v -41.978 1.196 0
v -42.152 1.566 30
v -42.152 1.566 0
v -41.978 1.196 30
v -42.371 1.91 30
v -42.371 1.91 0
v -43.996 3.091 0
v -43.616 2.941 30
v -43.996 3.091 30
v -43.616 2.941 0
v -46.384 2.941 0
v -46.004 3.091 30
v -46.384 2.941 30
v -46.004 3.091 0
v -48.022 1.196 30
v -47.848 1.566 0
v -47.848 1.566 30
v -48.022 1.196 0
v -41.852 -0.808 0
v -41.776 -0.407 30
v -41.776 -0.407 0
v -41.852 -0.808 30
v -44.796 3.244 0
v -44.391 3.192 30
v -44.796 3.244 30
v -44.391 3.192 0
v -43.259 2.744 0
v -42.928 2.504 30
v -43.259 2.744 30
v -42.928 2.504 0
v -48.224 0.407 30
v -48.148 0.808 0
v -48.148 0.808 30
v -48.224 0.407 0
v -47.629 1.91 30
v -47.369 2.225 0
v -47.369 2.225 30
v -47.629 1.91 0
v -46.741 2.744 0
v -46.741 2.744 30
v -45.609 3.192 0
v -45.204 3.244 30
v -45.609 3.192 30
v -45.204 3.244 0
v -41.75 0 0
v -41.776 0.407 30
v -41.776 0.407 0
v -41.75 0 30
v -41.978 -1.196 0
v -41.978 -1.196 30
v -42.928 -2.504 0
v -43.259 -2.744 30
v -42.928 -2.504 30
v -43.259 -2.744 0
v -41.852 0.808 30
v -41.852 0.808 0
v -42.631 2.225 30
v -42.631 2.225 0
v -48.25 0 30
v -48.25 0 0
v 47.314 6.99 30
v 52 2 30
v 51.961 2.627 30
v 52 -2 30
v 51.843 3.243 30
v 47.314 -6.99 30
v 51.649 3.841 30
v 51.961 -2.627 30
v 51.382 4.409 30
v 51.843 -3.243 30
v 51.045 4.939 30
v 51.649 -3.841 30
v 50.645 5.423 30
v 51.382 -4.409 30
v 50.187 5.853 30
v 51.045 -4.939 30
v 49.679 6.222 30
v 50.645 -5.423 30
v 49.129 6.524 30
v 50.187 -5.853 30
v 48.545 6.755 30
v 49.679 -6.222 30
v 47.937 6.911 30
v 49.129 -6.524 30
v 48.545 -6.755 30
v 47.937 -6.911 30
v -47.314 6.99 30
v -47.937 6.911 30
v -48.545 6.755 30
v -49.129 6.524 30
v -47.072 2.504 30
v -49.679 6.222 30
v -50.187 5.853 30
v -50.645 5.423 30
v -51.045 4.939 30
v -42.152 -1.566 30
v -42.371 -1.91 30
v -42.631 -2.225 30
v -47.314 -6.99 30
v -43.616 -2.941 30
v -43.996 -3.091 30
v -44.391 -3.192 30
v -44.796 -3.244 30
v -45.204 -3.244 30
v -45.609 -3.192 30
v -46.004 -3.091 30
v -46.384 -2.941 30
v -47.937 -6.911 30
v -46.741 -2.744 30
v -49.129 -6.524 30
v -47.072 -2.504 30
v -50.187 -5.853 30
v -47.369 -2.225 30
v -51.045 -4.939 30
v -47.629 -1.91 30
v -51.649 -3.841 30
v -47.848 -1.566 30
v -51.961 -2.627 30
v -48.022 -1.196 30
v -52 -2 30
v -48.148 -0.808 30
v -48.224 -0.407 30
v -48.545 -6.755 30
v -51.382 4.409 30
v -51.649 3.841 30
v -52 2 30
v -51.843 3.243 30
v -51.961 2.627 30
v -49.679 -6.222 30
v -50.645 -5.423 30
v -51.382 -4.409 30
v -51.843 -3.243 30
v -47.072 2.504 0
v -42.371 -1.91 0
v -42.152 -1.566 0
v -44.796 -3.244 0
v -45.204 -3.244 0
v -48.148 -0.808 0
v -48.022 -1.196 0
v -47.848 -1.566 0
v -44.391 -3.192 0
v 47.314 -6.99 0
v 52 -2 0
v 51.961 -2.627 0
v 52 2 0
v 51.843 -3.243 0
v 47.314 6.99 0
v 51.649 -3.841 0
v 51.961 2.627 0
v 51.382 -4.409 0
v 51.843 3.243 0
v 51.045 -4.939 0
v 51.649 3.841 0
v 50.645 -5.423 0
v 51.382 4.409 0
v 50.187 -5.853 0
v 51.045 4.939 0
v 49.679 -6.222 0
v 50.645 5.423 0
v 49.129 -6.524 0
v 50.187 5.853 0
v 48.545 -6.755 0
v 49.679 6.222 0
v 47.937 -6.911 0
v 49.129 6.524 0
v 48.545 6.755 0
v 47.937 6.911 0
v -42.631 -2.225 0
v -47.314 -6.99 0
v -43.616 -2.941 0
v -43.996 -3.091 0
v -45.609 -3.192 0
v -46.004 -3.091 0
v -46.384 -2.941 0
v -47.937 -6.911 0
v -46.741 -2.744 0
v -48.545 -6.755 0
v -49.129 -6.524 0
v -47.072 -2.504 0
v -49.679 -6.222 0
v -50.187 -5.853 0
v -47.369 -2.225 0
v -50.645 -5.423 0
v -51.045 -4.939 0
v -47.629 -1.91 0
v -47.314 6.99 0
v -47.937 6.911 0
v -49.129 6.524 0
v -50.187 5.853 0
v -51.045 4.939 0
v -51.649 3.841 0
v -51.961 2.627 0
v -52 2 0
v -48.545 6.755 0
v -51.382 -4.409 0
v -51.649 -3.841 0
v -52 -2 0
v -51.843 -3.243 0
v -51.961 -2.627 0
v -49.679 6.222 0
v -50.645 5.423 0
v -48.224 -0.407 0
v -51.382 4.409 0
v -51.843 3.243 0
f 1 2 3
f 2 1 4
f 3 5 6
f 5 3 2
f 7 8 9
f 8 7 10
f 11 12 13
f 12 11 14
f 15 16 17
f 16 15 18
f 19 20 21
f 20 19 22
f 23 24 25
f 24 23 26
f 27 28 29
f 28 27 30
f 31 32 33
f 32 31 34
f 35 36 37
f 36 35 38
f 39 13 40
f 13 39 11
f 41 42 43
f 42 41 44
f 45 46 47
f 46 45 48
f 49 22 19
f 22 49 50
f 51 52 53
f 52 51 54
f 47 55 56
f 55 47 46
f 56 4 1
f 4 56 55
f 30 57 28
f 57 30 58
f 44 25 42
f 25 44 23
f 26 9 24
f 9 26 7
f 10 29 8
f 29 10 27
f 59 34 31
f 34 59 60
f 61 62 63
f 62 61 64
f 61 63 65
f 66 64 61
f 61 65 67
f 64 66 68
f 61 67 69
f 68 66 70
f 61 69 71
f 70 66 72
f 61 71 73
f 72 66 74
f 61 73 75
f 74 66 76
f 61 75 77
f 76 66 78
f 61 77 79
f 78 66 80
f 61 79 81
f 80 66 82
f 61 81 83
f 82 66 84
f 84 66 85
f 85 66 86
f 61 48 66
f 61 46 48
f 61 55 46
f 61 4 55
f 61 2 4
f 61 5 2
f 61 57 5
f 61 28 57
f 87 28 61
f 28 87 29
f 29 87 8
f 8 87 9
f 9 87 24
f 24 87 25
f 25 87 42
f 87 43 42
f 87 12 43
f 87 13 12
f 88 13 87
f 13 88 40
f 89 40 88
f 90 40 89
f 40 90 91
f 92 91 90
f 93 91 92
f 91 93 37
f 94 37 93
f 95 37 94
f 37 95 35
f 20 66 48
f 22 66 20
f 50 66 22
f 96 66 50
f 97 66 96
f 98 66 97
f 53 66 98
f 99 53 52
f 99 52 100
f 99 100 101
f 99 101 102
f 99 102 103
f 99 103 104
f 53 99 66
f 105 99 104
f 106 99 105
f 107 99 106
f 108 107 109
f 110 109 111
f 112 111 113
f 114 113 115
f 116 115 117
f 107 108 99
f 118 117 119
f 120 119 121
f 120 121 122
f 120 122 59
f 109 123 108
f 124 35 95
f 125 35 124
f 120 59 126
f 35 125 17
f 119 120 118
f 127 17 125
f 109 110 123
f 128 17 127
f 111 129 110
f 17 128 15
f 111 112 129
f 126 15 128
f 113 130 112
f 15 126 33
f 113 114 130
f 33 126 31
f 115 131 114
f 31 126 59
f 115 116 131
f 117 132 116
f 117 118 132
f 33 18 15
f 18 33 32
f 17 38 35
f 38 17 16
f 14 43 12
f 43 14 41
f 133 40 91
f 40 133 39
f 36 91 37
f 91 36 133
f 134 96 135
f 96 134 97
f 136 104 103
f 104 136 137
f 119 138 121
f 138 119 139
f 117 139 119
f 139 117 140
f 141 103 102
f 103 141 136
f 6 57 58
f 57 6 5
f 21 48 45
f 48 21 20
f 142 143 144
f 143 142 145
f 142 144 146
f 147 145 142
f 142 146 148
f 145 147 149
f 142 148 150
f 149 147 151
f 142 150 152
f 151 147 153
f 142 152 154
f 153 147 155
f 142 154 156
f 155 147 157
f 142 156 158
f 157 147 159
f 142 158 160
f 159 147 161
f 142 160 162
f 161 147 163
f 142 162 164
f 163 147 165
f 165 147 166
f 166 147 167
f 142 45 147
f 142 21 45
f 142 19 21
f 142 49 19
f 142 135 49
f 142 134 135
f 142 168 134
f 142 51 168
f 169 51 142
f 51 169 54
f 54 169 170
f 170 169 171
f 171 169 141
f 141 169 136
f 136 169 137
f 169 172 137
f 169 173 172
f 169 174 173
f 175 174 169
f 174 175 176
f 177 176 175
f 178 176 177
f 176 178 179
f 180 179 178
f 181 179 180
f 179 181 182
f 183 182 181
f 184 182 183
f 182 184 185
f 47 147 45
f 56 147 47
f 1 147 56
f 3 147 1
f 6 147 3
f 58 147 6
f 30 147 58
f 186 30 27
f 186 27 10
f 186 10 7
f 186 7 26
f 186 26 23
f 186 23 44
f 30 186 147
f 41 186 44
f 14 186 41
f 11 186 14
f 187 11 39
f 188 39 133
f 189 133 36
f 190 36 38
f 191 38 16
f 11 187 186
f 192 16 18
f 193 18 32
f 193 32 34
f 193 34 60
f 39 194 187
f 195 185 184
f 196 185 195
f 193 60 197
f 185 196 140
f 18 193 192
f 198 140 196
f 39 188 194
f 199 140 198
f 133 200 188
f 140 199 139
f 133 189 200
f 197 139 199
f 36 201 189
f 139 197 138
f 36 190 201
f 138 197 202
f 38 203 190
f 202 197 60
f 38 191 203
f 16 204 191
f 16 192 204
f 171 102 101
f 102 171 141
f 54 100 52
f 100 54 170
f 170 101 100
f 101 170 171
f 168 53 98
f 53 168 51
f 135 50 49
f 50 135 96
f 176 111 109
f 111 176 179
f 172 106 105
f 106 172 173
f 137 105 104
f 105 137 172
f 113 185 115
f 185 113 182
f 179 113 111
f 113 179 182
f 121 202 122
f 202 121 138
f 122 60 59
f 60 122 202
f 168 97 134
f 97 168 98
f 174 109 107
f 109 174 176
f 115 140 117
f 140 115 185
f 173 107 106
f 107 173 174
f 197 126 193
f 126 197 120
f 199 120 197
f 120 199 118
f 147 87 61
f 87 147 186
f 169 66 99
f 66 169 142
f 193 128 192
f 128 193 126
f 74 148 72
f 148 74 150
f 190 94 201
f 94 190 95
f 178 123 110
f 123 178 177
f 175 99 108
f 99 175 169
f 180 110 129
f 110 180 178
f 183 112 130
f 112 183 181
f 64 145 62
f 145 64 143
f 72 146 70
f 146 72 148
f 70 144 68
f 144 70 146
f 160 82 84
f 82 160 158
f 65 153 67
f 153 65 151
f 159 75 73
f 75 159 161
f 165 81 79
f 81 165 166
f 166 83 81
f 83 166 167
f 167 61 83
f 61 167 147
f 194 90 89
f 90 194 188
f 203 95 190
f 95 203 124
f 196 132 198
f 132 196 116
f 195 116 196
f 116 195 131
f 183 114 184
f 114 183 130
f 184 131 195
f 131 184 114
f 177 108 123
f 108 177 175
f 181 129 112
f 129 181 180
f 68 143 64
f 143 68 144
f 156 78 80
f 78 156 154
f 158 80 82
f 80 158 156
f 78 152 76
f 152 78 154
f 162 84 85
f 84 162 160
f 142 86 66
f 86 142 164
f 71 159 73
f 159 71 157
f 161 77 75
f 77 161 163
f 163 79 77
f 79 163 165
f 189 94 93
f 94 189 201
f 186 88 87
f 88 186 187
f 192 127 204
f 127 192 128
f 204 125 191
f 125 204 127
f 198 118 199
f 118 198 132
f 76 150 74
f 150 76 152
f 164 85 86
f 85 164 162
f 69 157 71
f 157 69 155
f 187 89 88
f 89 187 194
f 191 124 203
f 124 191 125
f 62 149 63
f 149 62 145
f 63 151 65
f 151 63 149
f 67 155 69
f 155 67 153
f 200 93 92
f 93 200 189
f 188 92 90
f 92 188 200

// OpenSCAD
$fn = 50;


difference() {
	union() {
		hull() {
			translate(v = [-47.0000000000, 2.0000000000, 0]) {
				cylinder(h = 30, r = 5);
			}
			translate(v = [47.0000000000, 2.0000000000, 0]) {
				cylinder(h = 30, r = 5);
			}
			translate(v = [-47.0000000000, -2.0000000000, 0]) {
				cylinder(h = 30, r = 5);
			}
			translate(v = [47.0000000000, -2.0000000000, 0]) {
				cylinder(h = 30, r = 5);
			}
		}
	}
	union() {
		translate(v = [-45.0000000000, 0.0000000000, 0]) {
			cylinder(h = 30, r = 3.2500000000);
		}
		translate(v = [-45.0000000000, 0.0000000000, 0]) {
			cylinder(h = 30, r = 1.8000000000);
		}
		translate(v = [-45.0000000000, 0.0000000000, 0]) {
			cylinder(h = 30, r = 1.8000000000);
		}
		translate(v = [-45.0000000000, 0.0000000000, 0]) {
			cylinder(h = 30, r = 1.8000000000);
		}
	}
}
